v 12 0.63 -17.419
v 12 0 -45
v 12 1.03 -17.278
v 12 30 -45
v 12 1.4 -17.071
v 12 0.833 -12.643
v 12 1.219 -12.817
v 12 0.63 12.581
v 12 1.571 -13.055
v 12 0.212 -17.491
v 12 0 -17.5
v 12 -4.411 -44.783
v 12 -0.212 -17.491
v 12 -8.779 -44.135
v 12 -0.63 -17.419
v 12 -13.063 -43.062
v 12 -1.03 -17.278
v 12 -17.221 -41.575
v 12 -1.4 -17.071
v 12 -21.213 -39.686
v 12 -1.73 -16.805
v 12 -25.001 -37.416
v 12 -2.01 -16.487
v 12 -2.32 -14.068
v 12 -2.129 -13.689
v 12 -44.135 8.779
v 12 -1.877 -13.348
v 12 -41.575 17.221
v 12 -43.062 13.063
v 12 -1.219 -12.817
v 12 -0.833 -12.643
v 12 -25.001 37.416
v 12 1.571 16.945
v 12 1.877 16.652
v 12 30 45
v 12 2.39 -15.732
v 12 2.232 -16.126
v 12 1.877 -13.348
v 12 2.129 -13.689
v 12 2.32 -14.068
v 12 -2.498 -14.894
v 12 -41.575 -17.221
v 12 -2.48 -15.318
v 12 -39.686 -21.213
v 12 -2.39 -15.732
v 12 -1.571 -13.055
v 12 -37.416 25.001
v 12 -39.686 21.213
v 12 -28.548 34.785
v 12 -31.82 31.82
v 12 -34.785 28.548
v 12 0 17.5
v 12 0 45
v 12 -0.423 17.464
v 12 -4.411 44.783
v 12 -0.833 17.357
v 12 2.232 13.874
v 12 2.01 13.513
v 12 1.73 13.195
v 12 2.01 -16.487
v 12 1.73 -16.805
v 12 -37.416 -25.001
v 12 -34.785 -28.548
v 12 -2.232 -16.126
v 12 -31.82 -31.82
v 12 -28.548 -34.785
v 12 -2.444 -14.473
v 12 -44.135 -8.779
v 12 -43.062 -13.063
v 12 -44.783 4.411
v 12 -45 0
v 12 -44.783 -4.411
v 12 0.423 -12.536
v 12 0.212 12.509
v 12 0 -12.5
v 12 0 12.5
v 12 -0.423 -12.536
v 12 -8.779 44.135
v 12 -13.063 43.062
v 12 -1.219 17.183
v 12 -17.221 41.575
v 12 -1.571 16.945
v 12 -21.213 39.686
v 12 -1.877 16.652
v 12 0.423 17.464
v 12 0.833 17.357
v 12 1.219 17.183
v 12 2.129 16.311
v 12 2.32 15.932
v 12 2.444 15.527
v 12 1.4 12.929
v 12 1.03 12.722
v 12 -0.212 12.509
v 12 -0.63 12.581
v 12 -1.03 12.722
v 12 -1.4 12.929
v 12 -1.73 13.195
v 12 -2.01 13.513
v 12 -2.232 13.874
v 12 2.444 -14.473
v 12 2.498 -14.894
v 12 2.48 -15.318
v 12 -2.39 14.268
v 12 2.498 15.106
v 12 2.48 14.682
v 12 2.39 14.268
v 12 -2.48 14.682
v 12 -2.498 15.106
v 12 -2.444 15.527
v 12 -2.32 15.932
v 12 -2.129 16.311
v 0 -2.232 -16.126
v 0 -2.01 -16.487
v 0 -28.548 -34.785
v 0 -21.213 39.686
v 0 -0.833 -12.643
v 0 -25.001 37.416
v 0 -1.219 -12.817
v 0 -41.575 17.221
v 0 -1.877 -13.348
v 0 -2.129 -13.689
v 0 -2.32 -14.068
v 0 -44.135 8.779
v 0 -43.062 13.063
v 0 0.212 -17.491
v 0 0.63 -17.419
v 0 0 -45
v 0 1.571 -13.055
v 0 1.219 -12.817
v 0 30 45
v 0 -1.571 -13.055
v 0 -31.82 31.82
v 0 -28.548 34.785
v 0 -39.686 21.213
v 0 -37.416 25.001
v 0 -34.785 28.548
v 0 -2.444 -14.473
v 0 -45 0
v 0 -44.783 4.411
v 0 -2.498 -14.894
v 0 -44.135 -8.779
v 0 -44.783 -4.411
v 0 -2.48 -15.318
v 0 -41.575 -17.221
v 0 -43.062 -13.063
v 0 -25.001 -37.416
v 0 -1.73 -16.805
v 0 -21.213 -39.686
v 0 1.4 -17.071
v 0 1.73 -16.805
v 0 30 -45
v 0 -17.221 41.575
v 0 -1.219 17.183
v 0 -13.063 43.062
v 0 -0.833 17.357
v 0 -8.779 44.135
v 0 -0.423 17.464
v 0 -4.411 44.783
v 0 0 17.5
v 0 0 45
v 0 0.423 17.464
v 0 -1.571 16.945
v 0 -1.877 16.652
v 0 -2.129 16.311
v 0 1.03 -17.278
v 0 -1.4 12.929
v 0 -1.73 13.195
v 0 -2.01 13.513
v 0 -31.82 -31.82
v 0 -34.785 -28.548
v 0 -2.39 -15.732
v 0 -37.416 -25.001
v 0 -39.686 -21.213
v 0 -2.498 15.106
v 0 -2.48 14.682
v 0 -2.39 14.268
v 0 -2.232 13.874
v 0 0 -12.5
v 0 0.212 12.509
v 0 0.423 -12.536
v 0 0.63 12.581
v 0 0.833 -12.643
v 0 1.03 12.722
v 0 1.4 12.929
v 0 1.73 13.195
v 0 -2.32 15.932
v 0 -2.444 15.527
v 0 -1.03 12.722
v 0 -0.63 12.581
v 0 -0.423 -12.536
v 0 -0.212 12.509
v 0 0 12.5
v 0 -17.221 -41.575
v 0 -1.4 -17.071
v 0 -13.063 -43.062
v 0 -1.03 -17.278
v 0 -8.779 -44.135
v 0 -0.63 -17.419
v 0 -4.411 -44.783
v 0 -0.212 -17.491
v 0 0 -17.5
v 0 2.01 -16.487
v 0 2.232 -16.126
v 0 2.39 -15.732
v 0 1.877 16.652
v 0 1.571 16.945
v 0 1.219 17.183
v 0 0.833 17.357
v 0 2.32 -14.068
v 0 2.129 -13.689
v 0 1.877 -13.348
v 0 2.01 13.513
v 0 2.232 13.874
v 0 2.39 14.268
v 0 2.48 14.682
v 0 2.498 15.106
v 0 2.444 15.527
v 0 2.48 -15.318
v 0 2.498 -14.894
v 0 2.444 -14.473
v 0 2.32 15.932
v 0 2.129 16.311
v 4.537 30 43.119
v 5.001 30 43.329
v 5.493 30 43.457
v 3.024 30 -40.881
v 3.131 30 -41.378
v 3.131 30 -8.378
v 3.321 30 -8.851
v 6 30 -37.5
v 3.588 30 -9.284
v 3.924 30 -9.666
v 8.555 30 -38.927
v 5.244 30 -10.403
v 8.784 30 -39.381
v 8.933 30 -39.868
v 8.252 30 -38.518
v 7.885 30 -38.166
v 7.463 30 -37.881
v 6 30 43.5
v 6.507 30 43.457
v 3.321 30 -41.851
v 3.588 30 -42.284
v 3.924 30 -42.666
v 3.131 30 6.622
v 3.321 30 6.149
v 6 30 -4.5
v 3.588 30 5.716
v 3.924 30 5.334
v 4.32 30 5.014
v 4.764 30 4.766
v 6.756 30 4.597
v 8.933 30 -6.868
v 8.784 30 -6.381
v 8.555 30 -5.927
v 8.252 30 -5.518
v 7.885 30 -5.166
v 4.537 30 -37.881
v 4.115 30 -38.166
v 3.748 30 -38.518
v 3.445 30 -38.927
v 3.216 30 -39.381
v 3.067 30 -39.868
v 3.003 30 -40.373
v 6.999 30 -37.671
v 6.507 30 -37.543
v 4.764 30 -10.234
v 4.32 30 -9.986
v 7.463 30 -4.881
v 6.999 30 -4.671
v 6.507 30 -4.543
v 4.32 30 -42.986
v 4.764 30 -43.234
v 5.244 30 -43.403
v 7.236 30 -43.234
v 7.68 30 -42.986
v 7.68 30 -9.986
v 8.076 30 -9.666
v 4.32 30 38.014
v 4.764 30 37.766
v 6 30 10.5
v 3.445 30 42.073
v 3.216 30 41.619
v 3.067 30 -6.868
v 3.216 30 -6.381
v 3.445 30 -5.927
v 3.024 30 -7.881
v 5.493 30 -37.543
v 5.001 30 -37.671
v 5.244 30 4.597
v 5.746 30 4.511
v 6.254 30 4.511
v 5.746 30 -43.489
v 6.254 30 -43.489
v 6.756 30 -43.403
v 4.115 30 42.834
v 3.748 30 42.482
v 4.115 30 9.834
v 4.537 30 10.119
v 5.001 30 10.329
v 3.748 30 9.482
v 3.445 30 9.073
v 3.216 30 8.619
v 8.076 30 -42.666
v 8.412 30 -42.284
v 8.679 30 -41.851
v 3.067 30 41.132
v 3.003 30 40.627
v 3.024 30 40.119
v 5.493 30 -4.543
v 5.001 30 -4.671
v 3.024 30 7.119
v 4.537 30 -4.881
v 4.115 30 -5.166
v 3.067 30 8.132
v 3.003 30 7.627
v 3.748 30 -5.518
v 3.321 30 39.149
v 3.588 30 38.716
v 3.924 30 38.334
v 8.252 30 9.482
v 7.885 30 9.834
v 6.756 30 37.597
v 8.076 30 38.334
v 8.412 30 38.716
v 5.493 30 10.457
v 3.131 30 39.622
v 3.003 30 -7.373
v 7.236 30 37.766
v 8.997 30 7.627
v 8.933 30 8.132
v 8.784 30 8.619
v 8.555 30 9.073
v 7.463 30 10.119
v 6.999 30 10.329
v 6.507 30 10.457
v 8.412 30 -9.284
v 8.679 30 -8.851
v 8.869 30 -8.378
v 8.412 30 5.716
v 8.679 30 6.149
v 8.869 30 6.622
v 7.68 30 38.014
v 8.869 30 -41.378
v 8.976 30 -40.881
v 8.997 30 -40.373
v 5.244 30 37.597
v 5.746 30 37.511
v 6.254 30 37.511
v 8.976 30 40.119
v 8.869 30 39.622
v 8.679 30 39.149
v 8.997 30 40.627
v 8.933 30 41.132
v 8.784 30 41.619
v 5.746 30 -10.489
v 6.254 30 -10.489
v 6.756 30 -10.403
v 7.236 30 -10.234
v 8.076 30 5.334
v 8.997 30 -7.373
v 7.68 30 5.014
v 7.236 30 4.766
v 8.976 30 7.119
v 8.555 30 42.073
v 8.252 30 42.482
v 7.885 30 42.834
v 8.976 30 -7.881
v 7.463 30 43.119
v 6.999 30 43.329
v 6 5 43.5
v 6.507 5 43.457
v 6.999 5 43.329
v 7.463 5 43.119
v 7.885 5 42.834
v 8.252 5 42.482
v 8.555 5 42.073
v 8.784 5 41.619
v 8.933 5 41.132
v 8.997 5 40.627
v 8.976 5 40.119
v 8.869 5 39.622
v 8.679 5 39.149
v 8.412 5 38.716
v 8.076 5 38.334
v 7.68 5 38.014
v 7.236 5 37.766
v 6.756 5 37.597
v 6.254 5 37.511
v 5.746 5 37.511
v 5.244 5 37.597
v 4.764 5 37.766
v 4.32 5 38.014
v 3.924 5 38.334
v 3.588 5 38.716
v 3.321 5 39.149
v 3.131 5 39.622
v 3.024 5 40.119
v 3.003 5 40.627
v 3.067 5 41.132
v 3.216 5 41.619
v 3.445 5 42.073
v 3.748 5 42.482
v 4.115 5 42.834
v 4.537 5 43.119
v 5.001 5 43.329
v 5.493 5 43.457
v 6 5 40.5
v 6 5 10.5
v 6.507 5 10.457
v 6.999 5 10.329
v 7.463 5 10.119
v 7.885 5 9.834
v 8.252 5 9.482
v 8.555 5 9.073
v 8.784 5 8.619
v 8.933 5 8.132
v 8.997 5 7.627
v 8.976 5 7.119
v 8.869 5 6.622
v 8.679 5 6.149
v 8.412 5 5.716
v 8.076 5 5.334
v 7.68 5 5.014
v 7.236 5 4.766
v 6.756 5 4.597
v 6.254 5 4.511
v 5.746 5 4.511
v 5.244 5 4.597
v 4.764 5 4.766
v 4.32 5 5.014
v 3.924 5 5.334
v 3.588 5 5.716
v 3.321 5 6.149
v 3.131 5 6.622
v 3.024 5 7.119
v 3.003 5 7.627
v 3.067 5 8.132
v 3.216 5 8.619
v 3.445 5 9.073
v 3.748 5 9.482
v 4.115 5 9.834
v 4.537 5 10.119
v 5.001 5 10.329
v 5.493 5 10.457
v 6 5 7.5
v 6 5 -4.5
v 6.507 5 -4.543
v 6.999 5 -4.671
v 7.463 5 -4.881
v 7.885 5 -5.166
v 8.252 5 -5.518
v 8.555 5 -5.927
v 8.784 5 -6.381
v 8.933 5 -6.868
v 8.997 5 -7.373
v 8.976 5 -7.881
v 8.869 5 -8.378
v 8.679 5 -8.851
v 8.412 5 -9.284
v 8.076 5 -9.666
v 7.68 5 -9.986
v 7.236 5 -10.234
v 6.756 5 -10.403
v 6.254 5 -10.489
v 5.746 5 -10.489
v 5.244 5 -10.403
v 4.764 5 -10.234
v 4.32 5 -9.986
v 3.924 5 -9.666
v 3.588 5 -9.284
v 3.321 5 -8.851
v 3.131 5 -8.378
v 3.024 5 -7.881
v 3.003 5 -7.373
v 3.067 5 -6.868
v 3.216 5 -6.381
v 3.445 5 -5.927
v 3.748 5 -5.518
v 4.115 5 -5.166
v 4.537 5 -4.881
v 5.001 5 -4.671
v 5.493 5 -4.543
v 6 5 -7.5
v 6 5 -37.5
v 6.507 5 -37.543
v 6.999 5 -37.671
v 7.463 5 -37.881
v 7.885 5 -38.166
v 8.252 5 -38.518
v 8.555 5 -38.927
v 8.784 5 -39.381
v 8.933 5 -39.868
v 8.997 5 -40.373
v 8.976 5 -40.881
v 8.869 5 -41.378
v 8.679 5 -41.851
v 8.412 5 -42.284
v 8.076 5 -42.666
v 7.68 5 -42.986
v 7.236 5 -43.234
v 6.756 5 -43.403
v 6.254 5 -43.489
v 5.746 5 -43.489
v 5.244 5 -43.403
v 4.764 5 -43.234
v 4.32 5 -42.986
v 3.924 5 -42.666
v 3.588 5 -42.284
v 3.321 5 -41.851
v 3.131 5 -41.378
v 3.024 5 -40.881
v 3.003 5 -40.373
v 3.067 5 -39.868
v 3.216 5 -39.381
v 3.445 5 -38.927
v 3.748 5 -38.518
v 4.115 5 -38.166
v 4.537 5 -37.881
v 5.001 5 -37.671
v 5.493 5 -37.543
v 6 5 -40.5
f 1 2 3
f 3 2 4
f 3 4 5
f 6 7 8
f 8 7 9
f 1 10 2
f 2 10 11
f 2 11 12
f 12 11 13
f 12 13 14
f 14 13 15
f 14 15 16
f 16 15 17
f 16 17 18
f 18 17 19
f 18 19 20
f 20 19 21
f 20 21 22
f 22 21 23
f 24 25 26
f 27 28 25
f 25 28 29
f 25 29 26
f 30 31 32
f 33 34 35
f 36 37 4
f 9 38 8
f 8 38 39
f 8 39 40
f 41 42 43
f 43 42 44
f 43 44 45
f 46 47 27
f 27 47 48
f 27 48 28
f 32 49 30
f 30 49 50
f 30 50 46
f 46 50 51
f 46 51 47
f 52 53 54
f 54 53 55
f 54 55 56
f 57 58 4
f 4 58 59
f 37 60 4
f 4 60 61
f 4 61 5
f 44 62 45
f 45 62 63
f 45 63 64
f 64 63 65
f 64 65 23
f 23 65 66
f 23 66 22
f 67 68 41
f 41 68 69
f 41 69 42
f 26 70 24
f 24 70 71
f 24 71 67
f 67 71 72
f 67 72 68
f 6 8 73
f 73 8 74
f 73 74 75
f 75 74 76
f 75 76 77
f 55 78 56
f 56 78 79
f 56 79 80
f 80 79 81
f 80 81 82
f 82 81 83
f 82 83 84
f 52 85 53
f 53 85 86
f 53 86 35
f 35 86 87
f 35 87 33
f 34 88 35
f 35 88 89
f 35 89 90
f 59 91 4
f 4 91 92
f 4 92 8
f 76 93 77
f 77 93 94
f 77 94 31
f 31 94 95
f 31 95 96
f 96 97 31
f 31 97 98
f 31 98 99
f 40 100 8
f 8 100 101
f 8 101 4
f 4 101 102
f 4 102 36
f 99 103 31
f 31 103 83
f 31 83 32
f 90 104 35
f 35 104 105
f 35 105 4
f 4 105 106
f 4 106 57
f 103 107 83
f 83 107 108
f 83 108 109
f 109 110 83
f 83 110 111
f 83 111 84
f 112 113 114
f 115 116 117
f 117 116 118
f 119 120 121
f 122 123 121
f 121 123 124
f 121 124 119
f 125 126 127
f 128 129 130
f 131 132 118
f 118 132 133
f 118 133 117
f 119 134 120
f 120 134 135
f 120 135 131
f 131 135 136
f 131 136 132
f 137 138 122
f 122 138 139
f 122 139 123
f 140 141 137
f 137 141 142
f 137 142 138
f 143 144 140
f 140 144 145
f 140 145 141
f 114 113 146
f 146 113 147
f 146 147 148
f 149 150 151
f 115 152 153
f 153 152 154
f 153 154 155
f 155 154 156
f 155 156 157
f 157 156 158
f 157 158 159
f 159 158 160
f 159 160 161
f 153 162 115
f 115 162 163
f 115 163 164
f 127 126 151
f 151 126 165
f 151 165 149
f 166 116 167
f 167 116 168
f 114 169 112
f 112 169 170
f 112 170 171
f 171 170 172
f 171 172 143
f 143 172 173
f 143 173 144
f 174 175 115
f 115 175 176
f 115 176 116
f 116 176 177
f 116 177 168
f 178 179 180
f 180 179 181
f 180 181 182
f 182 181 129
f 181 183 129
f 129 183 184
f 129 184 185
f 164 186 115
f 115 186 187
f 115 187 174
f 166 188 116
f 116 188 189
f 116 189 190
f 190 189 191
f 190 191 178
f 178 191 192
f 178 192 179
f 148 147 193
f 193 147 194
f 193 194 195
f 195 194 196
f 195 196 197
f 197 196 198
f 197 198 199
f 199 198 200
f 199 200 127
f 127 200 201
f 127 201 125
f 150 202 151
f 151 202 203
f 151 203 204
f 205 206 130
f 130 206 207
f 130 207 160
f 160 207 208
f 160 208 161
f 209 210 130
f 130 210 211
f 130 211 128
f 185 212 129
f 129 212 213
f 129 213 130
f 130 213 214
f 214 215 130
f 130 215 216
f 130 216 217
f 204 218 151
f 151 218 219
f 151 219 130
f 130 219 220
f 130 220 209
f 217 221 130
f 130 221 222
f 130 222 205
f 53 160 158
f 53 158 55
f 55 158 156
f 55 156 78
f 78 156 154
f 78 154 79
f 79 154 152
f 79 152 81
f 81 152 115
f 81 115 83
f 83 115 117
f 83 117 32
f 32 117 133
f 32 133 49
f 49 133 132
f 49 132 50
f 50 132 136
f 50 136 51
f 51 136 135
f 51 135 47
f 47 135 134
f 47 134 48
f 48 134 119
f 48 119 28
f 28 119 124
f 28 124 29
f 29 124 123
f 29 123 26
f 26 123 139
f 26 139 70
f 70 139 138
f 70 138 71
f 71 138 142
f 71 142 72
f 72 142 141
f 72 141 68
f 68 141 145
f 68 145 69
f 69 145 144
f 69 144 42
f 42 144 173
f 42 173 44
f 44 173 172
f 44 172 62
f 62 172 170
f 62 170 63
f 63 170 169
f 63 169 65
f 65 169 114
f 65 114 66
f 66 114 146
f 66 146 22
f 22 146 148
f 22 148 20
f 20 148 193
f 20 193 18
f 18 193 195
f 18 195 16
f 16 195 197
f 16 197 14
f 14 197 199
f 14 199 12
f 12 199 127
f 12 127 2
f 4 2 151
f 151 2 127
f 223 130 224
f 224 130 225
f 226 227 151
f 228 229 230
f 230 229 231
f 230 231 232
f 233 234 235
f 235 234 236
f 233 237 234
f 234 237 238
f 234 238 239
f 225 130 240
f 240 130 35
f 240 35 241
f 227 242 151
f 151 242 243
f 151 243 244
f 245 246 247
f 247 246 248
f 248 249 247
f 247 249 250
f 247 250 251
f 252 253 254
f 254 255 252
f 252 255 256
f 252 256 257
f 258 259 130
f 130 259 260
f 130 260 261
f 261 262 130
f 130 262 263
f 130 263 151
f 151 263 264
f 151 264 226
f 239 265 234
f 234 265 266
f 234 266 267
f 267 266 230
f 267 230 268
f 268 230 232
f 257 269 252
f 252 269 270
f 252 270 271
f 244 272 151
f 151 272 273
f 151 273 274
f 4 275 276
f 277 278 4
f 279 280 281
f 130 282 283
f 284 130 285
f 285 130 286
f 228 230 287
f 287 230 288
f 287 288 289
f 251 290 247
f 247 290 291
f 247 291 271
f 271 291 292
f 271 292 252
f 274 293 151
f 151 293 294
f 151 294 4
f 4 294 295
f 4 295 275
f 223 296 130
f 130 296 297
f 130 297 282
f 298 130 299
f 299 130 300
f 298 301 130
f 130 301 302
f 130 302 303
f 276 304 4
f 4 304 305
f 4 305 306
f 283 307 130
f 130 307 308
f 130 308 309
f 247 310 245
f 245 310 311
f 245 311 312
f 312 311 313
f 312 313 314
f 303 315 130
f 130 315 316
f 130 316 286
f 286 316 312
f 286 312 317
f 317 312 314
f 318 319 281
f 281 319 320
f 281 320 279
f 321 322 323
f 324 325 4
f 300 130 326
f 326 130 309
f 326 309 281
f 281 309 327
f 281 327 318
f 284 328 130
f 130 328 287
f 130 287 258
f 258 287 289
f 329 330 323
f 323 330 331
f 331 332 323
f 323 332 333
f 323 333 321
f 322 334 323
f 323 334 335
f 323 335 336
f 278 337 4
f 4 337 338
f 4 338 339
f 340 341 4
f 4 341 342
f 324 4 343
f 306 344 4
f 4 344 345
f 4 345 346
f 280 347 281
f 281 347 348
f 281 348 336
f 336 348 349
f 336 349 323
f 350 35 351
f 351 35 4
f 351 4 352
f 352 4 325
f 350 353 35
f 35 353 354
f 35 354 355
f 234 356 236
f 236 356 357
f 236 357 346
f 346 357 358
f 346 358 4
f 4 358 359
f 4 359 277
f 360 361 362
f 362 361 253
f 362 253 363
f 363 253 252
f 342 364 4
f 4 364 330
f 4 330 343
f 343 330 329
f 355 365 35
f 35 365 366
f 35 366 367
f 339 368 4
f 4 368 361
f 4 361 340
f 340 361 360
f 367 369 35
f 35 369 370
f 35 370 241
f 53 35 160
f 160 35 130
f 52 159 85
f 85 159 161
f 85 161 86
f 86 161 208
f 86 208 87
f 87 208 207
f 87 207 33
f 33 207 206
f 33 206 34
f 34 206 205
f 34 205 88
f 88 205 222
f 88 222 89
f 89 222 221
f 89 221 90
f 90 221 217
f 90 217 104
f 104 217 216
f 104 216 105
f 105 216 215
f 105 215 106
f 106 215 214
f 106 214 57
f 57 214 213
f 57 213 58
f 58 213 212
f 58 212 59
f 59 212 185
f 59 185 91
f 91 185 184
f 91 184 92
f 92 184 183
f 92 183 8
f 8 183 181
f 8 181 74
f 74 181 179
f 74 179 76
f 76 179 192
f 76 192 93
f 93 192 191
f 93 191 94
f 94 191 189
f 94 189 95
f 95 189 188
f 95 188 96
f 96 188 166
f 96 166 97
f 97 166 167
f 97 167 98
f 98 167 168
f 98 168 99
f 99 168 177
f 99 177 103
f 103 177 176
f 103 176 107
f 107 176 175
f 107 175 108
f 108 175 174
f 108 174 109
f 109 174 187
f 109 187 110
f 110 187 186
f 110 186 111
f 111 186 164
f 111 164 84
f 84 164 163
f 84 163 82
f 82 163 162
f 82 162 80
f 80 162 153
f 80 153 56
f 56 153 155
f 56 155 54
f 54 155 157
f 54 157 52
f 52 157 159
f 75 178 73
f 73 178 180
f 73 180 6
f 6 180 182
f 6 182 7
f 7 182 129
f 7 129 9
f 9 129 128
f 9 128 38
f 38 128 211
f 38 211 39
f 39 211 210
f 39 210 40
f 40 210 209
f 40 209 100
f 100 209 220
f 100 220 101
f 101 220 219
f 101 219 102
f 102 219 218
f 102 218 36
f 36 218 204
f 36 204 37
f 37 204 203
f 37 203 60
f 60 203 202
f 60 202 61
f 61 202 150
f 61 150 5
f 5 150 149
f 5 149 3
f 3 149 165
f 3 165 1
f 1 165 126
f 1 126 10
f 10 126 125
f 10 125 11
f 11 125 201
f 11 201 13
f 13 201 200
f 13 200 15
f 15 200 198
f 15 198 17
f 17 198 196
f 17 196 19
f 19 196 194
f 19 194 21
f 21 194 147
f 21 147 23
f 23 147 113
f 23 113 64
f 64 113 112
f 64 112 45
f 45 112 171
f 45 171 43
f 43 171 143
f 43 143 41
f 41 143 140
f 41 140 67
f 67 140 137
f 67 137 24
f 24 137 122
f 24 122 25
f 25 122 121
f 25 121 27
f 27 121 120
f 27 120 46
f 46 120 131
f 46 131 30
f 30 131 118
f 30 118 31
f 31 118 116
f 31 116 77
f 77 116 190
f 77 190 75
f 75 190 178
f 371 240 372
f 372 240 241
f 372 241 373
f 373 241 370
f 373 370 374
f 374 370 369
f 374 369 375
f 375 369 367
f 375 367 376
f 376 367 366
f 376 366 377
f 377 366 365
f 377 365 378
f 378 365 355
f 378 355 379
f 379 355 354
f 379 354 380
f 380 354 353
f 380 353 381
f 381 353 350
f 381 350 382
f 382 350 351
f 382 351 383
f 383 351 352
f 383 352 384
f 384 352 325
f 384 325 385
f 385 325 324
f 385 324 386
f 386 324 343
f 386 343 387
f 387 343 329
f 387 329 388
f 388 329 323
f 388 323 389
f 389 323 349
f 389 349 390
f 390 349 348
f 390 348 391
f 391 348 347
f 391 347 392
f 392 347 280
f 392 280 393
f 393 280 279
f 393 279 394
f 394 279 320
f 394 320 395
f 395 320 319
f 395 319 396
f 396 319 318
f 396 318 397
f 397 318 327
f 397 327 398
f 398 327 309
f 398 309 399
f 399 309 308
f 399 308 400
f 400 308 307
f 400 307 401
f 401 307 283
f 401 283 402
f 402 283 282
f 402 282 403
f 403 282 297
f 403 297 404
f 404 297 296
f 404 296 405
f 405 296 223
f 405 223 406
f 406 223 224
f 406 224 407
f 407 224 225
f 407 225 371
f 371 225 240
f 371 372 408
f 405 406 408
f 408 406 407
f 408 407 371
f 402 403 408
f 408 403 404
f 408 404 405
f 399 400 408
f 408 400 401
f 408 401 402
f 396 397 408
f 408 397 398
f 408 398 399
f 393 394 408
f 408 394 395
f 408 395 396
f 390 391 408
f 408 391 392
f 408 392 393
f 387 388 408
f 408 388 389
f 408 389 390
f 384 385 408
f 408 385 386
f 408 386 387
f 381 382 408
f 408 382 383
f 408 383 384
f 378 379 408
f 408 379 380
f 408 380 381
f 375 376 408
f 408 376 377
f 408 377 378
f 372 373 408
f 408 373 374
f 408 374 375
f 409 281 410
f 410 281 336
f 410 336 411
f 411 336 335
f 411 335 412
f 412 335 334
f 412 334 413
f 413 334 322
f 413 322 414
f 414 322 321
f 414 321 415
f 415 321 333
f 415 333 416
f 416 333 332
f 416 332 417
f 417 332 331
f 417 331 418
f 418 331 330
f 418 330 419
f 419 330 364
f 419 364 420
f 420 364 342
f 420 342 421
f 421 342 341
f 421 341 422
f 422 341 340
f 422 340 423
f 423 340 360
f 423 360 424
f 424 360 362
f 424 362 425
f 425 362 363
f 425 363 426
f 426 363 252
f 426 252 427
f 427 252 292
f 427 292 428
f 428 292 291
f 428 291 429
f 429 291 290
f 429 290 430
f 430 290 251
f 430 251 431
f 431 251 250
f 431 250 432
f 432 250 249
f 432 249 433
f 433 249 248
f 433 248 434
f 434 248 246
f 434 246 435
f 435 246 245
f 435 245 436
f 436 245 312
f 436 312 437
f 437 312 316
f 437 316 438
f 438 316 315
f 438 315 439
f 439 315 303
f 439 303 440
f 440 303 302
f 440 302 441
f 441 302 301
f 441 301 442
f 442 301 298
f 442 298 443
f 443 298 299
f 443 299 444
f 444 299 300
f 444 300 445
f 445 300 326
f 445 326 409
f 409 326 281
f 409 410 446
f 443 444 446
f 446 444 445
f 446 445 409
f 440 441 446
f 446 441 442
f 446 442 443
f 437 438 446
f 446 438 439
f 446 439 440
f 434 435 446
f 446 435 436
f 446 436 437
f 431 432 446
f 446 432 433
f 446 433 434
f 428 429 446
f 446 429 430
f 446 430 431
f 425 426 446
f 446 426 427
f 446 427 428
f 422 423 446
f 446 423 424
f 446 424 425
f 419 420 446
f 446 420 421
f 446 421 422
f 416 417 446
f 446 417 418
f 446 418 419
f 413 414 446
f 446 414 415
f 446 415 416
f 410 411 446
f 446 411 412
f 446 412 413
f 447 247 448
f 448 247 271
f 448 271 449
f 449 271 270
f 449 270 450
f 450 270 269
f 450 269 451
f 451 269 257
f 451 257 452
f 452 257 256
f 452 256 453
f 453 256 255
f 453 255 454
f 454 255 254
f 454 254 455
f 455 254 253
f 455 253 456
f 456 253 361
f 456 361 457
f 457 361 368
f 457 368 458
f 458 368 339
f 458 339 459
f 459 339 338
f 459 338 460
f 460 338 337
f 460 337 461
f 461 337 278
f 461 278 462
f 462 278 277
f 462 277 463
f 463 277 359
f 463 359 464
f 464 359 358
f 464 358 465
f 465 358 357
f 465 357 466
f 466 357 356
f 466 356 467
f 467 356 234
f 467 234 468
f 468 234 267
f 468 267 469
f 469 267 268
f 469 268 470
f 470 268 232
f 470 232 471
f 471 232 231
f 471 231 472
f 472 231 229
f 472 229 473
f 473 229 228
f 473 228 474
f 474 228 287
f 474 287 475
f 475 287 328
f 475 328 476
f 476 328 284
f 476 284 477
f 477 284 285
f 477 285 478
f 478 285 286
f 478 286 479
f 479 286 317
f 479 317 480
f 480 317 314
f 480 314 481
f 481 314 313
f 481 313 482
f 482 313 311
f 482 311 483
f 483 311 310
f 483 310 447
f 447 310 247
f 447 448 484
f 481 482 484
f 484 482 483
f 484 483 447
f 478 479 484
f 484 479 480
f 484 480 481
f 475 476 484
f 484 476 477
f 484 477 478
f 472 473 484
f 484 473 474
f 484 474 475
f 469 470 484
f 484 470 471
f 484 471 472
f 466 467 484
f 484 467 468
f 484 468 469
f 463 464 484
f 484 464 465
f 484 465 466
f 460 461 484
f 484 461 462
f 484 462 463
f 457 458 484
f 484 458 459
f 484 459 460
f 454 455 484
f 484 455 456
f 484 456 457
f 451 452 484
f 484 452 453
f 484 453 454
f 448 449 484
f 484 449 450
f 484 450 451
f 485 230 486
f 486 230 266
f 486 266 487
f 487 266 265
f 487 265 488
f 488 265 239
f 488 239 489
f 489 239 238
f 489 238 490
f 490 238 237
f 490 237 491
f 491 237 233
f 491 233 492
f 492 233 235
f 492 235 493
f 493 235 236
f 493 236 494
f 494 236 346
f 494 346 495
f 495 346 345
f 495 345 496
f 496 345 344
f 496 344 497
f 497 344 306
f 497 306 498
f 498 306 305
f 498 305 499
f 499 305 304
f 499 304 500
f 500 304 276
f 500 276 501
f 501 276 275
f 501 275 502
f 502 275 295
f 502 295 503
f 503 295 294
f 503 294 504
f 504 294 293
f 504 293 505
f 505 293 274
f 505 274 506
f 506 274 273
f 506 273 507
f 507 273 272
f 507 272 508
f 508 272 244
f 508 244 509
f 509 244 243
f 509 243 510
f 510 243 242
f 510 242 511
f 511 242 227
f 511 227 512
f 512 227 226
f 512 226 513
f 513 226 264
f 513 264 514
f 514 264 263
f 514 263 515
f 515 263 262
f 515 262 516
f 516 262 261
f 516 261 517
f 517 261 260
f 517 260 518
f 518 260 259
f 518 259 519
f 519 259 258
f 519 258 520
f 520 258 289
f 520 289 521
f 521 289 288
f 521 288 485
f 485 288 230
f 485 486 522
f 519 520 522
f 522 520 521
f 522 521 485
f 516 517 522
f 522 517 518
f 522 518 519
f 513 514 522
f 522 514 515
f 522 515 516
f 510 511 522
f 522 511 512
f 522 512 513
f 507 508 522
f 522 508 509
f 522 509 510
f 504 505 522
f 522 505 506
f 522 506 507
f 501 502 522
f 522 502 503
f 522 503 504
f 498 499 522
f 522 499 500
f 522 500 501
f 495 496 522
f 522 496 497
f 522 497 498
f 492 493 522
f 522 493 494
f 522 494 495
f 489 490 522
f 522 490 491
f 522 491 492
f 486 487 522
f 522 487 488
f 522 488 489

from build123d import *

# Parameters (mm, degrees)
SKETCH1_R           = 2.5
BOSS_EXTRUDE1_DEPTH = 12
SKETCH2_R           = 3
CUT_EXTRUDE1_DEPTH  = 25


with BuildPart() as part:
    # Sketch1 → Boss-Extrude1 (new body)
    with BuildSketch(Plane(origin=(0, 0, 0), x_dir=(0, 0, -1), z_dir=(1, 0, 0))):
        with BuildLine():
            Line((-45, 0), (-45, 30))
            Line((-45, 30), (45, 30))
            Line((45, 30), (45, 0))
            ThreePointArc((45, 0), (0, -45), (-45, 0))
        make_face()
        with Locations((-15, 0)):
            Circle(SKETCH1_R, mode=Mode.SUBTRACT)
        with Locations((15, 0)):
            Circle(SKETCH1_R, mode=Mode.SUBTRACT)
    extrude(amount=BOSS_EXTRUDE1_DEPTH)

    # Sketch2 → Cut-Extrude1 (cut)
    with BuildSketch(Plane(origin=(0, 30, 0), x_dir=(1, 0, 0), z_dir=(0, 1, 0))):
        with Locations((6, 40.5)):
            Circle(SKETCH2_R)
        with Locations((6, 7.5)):
            Circle(SKETCH2_R)
        with Locations((6, -7.5)):
            Circle(SKETCH2_R)
        with Locations((6, -40.5)):
            Circle(SKETCH2_R)
    extrude(amount=-CUT_EXTRUDE1_DEPTH, mode=Mode.SUBTRACT)


solid = part.part
